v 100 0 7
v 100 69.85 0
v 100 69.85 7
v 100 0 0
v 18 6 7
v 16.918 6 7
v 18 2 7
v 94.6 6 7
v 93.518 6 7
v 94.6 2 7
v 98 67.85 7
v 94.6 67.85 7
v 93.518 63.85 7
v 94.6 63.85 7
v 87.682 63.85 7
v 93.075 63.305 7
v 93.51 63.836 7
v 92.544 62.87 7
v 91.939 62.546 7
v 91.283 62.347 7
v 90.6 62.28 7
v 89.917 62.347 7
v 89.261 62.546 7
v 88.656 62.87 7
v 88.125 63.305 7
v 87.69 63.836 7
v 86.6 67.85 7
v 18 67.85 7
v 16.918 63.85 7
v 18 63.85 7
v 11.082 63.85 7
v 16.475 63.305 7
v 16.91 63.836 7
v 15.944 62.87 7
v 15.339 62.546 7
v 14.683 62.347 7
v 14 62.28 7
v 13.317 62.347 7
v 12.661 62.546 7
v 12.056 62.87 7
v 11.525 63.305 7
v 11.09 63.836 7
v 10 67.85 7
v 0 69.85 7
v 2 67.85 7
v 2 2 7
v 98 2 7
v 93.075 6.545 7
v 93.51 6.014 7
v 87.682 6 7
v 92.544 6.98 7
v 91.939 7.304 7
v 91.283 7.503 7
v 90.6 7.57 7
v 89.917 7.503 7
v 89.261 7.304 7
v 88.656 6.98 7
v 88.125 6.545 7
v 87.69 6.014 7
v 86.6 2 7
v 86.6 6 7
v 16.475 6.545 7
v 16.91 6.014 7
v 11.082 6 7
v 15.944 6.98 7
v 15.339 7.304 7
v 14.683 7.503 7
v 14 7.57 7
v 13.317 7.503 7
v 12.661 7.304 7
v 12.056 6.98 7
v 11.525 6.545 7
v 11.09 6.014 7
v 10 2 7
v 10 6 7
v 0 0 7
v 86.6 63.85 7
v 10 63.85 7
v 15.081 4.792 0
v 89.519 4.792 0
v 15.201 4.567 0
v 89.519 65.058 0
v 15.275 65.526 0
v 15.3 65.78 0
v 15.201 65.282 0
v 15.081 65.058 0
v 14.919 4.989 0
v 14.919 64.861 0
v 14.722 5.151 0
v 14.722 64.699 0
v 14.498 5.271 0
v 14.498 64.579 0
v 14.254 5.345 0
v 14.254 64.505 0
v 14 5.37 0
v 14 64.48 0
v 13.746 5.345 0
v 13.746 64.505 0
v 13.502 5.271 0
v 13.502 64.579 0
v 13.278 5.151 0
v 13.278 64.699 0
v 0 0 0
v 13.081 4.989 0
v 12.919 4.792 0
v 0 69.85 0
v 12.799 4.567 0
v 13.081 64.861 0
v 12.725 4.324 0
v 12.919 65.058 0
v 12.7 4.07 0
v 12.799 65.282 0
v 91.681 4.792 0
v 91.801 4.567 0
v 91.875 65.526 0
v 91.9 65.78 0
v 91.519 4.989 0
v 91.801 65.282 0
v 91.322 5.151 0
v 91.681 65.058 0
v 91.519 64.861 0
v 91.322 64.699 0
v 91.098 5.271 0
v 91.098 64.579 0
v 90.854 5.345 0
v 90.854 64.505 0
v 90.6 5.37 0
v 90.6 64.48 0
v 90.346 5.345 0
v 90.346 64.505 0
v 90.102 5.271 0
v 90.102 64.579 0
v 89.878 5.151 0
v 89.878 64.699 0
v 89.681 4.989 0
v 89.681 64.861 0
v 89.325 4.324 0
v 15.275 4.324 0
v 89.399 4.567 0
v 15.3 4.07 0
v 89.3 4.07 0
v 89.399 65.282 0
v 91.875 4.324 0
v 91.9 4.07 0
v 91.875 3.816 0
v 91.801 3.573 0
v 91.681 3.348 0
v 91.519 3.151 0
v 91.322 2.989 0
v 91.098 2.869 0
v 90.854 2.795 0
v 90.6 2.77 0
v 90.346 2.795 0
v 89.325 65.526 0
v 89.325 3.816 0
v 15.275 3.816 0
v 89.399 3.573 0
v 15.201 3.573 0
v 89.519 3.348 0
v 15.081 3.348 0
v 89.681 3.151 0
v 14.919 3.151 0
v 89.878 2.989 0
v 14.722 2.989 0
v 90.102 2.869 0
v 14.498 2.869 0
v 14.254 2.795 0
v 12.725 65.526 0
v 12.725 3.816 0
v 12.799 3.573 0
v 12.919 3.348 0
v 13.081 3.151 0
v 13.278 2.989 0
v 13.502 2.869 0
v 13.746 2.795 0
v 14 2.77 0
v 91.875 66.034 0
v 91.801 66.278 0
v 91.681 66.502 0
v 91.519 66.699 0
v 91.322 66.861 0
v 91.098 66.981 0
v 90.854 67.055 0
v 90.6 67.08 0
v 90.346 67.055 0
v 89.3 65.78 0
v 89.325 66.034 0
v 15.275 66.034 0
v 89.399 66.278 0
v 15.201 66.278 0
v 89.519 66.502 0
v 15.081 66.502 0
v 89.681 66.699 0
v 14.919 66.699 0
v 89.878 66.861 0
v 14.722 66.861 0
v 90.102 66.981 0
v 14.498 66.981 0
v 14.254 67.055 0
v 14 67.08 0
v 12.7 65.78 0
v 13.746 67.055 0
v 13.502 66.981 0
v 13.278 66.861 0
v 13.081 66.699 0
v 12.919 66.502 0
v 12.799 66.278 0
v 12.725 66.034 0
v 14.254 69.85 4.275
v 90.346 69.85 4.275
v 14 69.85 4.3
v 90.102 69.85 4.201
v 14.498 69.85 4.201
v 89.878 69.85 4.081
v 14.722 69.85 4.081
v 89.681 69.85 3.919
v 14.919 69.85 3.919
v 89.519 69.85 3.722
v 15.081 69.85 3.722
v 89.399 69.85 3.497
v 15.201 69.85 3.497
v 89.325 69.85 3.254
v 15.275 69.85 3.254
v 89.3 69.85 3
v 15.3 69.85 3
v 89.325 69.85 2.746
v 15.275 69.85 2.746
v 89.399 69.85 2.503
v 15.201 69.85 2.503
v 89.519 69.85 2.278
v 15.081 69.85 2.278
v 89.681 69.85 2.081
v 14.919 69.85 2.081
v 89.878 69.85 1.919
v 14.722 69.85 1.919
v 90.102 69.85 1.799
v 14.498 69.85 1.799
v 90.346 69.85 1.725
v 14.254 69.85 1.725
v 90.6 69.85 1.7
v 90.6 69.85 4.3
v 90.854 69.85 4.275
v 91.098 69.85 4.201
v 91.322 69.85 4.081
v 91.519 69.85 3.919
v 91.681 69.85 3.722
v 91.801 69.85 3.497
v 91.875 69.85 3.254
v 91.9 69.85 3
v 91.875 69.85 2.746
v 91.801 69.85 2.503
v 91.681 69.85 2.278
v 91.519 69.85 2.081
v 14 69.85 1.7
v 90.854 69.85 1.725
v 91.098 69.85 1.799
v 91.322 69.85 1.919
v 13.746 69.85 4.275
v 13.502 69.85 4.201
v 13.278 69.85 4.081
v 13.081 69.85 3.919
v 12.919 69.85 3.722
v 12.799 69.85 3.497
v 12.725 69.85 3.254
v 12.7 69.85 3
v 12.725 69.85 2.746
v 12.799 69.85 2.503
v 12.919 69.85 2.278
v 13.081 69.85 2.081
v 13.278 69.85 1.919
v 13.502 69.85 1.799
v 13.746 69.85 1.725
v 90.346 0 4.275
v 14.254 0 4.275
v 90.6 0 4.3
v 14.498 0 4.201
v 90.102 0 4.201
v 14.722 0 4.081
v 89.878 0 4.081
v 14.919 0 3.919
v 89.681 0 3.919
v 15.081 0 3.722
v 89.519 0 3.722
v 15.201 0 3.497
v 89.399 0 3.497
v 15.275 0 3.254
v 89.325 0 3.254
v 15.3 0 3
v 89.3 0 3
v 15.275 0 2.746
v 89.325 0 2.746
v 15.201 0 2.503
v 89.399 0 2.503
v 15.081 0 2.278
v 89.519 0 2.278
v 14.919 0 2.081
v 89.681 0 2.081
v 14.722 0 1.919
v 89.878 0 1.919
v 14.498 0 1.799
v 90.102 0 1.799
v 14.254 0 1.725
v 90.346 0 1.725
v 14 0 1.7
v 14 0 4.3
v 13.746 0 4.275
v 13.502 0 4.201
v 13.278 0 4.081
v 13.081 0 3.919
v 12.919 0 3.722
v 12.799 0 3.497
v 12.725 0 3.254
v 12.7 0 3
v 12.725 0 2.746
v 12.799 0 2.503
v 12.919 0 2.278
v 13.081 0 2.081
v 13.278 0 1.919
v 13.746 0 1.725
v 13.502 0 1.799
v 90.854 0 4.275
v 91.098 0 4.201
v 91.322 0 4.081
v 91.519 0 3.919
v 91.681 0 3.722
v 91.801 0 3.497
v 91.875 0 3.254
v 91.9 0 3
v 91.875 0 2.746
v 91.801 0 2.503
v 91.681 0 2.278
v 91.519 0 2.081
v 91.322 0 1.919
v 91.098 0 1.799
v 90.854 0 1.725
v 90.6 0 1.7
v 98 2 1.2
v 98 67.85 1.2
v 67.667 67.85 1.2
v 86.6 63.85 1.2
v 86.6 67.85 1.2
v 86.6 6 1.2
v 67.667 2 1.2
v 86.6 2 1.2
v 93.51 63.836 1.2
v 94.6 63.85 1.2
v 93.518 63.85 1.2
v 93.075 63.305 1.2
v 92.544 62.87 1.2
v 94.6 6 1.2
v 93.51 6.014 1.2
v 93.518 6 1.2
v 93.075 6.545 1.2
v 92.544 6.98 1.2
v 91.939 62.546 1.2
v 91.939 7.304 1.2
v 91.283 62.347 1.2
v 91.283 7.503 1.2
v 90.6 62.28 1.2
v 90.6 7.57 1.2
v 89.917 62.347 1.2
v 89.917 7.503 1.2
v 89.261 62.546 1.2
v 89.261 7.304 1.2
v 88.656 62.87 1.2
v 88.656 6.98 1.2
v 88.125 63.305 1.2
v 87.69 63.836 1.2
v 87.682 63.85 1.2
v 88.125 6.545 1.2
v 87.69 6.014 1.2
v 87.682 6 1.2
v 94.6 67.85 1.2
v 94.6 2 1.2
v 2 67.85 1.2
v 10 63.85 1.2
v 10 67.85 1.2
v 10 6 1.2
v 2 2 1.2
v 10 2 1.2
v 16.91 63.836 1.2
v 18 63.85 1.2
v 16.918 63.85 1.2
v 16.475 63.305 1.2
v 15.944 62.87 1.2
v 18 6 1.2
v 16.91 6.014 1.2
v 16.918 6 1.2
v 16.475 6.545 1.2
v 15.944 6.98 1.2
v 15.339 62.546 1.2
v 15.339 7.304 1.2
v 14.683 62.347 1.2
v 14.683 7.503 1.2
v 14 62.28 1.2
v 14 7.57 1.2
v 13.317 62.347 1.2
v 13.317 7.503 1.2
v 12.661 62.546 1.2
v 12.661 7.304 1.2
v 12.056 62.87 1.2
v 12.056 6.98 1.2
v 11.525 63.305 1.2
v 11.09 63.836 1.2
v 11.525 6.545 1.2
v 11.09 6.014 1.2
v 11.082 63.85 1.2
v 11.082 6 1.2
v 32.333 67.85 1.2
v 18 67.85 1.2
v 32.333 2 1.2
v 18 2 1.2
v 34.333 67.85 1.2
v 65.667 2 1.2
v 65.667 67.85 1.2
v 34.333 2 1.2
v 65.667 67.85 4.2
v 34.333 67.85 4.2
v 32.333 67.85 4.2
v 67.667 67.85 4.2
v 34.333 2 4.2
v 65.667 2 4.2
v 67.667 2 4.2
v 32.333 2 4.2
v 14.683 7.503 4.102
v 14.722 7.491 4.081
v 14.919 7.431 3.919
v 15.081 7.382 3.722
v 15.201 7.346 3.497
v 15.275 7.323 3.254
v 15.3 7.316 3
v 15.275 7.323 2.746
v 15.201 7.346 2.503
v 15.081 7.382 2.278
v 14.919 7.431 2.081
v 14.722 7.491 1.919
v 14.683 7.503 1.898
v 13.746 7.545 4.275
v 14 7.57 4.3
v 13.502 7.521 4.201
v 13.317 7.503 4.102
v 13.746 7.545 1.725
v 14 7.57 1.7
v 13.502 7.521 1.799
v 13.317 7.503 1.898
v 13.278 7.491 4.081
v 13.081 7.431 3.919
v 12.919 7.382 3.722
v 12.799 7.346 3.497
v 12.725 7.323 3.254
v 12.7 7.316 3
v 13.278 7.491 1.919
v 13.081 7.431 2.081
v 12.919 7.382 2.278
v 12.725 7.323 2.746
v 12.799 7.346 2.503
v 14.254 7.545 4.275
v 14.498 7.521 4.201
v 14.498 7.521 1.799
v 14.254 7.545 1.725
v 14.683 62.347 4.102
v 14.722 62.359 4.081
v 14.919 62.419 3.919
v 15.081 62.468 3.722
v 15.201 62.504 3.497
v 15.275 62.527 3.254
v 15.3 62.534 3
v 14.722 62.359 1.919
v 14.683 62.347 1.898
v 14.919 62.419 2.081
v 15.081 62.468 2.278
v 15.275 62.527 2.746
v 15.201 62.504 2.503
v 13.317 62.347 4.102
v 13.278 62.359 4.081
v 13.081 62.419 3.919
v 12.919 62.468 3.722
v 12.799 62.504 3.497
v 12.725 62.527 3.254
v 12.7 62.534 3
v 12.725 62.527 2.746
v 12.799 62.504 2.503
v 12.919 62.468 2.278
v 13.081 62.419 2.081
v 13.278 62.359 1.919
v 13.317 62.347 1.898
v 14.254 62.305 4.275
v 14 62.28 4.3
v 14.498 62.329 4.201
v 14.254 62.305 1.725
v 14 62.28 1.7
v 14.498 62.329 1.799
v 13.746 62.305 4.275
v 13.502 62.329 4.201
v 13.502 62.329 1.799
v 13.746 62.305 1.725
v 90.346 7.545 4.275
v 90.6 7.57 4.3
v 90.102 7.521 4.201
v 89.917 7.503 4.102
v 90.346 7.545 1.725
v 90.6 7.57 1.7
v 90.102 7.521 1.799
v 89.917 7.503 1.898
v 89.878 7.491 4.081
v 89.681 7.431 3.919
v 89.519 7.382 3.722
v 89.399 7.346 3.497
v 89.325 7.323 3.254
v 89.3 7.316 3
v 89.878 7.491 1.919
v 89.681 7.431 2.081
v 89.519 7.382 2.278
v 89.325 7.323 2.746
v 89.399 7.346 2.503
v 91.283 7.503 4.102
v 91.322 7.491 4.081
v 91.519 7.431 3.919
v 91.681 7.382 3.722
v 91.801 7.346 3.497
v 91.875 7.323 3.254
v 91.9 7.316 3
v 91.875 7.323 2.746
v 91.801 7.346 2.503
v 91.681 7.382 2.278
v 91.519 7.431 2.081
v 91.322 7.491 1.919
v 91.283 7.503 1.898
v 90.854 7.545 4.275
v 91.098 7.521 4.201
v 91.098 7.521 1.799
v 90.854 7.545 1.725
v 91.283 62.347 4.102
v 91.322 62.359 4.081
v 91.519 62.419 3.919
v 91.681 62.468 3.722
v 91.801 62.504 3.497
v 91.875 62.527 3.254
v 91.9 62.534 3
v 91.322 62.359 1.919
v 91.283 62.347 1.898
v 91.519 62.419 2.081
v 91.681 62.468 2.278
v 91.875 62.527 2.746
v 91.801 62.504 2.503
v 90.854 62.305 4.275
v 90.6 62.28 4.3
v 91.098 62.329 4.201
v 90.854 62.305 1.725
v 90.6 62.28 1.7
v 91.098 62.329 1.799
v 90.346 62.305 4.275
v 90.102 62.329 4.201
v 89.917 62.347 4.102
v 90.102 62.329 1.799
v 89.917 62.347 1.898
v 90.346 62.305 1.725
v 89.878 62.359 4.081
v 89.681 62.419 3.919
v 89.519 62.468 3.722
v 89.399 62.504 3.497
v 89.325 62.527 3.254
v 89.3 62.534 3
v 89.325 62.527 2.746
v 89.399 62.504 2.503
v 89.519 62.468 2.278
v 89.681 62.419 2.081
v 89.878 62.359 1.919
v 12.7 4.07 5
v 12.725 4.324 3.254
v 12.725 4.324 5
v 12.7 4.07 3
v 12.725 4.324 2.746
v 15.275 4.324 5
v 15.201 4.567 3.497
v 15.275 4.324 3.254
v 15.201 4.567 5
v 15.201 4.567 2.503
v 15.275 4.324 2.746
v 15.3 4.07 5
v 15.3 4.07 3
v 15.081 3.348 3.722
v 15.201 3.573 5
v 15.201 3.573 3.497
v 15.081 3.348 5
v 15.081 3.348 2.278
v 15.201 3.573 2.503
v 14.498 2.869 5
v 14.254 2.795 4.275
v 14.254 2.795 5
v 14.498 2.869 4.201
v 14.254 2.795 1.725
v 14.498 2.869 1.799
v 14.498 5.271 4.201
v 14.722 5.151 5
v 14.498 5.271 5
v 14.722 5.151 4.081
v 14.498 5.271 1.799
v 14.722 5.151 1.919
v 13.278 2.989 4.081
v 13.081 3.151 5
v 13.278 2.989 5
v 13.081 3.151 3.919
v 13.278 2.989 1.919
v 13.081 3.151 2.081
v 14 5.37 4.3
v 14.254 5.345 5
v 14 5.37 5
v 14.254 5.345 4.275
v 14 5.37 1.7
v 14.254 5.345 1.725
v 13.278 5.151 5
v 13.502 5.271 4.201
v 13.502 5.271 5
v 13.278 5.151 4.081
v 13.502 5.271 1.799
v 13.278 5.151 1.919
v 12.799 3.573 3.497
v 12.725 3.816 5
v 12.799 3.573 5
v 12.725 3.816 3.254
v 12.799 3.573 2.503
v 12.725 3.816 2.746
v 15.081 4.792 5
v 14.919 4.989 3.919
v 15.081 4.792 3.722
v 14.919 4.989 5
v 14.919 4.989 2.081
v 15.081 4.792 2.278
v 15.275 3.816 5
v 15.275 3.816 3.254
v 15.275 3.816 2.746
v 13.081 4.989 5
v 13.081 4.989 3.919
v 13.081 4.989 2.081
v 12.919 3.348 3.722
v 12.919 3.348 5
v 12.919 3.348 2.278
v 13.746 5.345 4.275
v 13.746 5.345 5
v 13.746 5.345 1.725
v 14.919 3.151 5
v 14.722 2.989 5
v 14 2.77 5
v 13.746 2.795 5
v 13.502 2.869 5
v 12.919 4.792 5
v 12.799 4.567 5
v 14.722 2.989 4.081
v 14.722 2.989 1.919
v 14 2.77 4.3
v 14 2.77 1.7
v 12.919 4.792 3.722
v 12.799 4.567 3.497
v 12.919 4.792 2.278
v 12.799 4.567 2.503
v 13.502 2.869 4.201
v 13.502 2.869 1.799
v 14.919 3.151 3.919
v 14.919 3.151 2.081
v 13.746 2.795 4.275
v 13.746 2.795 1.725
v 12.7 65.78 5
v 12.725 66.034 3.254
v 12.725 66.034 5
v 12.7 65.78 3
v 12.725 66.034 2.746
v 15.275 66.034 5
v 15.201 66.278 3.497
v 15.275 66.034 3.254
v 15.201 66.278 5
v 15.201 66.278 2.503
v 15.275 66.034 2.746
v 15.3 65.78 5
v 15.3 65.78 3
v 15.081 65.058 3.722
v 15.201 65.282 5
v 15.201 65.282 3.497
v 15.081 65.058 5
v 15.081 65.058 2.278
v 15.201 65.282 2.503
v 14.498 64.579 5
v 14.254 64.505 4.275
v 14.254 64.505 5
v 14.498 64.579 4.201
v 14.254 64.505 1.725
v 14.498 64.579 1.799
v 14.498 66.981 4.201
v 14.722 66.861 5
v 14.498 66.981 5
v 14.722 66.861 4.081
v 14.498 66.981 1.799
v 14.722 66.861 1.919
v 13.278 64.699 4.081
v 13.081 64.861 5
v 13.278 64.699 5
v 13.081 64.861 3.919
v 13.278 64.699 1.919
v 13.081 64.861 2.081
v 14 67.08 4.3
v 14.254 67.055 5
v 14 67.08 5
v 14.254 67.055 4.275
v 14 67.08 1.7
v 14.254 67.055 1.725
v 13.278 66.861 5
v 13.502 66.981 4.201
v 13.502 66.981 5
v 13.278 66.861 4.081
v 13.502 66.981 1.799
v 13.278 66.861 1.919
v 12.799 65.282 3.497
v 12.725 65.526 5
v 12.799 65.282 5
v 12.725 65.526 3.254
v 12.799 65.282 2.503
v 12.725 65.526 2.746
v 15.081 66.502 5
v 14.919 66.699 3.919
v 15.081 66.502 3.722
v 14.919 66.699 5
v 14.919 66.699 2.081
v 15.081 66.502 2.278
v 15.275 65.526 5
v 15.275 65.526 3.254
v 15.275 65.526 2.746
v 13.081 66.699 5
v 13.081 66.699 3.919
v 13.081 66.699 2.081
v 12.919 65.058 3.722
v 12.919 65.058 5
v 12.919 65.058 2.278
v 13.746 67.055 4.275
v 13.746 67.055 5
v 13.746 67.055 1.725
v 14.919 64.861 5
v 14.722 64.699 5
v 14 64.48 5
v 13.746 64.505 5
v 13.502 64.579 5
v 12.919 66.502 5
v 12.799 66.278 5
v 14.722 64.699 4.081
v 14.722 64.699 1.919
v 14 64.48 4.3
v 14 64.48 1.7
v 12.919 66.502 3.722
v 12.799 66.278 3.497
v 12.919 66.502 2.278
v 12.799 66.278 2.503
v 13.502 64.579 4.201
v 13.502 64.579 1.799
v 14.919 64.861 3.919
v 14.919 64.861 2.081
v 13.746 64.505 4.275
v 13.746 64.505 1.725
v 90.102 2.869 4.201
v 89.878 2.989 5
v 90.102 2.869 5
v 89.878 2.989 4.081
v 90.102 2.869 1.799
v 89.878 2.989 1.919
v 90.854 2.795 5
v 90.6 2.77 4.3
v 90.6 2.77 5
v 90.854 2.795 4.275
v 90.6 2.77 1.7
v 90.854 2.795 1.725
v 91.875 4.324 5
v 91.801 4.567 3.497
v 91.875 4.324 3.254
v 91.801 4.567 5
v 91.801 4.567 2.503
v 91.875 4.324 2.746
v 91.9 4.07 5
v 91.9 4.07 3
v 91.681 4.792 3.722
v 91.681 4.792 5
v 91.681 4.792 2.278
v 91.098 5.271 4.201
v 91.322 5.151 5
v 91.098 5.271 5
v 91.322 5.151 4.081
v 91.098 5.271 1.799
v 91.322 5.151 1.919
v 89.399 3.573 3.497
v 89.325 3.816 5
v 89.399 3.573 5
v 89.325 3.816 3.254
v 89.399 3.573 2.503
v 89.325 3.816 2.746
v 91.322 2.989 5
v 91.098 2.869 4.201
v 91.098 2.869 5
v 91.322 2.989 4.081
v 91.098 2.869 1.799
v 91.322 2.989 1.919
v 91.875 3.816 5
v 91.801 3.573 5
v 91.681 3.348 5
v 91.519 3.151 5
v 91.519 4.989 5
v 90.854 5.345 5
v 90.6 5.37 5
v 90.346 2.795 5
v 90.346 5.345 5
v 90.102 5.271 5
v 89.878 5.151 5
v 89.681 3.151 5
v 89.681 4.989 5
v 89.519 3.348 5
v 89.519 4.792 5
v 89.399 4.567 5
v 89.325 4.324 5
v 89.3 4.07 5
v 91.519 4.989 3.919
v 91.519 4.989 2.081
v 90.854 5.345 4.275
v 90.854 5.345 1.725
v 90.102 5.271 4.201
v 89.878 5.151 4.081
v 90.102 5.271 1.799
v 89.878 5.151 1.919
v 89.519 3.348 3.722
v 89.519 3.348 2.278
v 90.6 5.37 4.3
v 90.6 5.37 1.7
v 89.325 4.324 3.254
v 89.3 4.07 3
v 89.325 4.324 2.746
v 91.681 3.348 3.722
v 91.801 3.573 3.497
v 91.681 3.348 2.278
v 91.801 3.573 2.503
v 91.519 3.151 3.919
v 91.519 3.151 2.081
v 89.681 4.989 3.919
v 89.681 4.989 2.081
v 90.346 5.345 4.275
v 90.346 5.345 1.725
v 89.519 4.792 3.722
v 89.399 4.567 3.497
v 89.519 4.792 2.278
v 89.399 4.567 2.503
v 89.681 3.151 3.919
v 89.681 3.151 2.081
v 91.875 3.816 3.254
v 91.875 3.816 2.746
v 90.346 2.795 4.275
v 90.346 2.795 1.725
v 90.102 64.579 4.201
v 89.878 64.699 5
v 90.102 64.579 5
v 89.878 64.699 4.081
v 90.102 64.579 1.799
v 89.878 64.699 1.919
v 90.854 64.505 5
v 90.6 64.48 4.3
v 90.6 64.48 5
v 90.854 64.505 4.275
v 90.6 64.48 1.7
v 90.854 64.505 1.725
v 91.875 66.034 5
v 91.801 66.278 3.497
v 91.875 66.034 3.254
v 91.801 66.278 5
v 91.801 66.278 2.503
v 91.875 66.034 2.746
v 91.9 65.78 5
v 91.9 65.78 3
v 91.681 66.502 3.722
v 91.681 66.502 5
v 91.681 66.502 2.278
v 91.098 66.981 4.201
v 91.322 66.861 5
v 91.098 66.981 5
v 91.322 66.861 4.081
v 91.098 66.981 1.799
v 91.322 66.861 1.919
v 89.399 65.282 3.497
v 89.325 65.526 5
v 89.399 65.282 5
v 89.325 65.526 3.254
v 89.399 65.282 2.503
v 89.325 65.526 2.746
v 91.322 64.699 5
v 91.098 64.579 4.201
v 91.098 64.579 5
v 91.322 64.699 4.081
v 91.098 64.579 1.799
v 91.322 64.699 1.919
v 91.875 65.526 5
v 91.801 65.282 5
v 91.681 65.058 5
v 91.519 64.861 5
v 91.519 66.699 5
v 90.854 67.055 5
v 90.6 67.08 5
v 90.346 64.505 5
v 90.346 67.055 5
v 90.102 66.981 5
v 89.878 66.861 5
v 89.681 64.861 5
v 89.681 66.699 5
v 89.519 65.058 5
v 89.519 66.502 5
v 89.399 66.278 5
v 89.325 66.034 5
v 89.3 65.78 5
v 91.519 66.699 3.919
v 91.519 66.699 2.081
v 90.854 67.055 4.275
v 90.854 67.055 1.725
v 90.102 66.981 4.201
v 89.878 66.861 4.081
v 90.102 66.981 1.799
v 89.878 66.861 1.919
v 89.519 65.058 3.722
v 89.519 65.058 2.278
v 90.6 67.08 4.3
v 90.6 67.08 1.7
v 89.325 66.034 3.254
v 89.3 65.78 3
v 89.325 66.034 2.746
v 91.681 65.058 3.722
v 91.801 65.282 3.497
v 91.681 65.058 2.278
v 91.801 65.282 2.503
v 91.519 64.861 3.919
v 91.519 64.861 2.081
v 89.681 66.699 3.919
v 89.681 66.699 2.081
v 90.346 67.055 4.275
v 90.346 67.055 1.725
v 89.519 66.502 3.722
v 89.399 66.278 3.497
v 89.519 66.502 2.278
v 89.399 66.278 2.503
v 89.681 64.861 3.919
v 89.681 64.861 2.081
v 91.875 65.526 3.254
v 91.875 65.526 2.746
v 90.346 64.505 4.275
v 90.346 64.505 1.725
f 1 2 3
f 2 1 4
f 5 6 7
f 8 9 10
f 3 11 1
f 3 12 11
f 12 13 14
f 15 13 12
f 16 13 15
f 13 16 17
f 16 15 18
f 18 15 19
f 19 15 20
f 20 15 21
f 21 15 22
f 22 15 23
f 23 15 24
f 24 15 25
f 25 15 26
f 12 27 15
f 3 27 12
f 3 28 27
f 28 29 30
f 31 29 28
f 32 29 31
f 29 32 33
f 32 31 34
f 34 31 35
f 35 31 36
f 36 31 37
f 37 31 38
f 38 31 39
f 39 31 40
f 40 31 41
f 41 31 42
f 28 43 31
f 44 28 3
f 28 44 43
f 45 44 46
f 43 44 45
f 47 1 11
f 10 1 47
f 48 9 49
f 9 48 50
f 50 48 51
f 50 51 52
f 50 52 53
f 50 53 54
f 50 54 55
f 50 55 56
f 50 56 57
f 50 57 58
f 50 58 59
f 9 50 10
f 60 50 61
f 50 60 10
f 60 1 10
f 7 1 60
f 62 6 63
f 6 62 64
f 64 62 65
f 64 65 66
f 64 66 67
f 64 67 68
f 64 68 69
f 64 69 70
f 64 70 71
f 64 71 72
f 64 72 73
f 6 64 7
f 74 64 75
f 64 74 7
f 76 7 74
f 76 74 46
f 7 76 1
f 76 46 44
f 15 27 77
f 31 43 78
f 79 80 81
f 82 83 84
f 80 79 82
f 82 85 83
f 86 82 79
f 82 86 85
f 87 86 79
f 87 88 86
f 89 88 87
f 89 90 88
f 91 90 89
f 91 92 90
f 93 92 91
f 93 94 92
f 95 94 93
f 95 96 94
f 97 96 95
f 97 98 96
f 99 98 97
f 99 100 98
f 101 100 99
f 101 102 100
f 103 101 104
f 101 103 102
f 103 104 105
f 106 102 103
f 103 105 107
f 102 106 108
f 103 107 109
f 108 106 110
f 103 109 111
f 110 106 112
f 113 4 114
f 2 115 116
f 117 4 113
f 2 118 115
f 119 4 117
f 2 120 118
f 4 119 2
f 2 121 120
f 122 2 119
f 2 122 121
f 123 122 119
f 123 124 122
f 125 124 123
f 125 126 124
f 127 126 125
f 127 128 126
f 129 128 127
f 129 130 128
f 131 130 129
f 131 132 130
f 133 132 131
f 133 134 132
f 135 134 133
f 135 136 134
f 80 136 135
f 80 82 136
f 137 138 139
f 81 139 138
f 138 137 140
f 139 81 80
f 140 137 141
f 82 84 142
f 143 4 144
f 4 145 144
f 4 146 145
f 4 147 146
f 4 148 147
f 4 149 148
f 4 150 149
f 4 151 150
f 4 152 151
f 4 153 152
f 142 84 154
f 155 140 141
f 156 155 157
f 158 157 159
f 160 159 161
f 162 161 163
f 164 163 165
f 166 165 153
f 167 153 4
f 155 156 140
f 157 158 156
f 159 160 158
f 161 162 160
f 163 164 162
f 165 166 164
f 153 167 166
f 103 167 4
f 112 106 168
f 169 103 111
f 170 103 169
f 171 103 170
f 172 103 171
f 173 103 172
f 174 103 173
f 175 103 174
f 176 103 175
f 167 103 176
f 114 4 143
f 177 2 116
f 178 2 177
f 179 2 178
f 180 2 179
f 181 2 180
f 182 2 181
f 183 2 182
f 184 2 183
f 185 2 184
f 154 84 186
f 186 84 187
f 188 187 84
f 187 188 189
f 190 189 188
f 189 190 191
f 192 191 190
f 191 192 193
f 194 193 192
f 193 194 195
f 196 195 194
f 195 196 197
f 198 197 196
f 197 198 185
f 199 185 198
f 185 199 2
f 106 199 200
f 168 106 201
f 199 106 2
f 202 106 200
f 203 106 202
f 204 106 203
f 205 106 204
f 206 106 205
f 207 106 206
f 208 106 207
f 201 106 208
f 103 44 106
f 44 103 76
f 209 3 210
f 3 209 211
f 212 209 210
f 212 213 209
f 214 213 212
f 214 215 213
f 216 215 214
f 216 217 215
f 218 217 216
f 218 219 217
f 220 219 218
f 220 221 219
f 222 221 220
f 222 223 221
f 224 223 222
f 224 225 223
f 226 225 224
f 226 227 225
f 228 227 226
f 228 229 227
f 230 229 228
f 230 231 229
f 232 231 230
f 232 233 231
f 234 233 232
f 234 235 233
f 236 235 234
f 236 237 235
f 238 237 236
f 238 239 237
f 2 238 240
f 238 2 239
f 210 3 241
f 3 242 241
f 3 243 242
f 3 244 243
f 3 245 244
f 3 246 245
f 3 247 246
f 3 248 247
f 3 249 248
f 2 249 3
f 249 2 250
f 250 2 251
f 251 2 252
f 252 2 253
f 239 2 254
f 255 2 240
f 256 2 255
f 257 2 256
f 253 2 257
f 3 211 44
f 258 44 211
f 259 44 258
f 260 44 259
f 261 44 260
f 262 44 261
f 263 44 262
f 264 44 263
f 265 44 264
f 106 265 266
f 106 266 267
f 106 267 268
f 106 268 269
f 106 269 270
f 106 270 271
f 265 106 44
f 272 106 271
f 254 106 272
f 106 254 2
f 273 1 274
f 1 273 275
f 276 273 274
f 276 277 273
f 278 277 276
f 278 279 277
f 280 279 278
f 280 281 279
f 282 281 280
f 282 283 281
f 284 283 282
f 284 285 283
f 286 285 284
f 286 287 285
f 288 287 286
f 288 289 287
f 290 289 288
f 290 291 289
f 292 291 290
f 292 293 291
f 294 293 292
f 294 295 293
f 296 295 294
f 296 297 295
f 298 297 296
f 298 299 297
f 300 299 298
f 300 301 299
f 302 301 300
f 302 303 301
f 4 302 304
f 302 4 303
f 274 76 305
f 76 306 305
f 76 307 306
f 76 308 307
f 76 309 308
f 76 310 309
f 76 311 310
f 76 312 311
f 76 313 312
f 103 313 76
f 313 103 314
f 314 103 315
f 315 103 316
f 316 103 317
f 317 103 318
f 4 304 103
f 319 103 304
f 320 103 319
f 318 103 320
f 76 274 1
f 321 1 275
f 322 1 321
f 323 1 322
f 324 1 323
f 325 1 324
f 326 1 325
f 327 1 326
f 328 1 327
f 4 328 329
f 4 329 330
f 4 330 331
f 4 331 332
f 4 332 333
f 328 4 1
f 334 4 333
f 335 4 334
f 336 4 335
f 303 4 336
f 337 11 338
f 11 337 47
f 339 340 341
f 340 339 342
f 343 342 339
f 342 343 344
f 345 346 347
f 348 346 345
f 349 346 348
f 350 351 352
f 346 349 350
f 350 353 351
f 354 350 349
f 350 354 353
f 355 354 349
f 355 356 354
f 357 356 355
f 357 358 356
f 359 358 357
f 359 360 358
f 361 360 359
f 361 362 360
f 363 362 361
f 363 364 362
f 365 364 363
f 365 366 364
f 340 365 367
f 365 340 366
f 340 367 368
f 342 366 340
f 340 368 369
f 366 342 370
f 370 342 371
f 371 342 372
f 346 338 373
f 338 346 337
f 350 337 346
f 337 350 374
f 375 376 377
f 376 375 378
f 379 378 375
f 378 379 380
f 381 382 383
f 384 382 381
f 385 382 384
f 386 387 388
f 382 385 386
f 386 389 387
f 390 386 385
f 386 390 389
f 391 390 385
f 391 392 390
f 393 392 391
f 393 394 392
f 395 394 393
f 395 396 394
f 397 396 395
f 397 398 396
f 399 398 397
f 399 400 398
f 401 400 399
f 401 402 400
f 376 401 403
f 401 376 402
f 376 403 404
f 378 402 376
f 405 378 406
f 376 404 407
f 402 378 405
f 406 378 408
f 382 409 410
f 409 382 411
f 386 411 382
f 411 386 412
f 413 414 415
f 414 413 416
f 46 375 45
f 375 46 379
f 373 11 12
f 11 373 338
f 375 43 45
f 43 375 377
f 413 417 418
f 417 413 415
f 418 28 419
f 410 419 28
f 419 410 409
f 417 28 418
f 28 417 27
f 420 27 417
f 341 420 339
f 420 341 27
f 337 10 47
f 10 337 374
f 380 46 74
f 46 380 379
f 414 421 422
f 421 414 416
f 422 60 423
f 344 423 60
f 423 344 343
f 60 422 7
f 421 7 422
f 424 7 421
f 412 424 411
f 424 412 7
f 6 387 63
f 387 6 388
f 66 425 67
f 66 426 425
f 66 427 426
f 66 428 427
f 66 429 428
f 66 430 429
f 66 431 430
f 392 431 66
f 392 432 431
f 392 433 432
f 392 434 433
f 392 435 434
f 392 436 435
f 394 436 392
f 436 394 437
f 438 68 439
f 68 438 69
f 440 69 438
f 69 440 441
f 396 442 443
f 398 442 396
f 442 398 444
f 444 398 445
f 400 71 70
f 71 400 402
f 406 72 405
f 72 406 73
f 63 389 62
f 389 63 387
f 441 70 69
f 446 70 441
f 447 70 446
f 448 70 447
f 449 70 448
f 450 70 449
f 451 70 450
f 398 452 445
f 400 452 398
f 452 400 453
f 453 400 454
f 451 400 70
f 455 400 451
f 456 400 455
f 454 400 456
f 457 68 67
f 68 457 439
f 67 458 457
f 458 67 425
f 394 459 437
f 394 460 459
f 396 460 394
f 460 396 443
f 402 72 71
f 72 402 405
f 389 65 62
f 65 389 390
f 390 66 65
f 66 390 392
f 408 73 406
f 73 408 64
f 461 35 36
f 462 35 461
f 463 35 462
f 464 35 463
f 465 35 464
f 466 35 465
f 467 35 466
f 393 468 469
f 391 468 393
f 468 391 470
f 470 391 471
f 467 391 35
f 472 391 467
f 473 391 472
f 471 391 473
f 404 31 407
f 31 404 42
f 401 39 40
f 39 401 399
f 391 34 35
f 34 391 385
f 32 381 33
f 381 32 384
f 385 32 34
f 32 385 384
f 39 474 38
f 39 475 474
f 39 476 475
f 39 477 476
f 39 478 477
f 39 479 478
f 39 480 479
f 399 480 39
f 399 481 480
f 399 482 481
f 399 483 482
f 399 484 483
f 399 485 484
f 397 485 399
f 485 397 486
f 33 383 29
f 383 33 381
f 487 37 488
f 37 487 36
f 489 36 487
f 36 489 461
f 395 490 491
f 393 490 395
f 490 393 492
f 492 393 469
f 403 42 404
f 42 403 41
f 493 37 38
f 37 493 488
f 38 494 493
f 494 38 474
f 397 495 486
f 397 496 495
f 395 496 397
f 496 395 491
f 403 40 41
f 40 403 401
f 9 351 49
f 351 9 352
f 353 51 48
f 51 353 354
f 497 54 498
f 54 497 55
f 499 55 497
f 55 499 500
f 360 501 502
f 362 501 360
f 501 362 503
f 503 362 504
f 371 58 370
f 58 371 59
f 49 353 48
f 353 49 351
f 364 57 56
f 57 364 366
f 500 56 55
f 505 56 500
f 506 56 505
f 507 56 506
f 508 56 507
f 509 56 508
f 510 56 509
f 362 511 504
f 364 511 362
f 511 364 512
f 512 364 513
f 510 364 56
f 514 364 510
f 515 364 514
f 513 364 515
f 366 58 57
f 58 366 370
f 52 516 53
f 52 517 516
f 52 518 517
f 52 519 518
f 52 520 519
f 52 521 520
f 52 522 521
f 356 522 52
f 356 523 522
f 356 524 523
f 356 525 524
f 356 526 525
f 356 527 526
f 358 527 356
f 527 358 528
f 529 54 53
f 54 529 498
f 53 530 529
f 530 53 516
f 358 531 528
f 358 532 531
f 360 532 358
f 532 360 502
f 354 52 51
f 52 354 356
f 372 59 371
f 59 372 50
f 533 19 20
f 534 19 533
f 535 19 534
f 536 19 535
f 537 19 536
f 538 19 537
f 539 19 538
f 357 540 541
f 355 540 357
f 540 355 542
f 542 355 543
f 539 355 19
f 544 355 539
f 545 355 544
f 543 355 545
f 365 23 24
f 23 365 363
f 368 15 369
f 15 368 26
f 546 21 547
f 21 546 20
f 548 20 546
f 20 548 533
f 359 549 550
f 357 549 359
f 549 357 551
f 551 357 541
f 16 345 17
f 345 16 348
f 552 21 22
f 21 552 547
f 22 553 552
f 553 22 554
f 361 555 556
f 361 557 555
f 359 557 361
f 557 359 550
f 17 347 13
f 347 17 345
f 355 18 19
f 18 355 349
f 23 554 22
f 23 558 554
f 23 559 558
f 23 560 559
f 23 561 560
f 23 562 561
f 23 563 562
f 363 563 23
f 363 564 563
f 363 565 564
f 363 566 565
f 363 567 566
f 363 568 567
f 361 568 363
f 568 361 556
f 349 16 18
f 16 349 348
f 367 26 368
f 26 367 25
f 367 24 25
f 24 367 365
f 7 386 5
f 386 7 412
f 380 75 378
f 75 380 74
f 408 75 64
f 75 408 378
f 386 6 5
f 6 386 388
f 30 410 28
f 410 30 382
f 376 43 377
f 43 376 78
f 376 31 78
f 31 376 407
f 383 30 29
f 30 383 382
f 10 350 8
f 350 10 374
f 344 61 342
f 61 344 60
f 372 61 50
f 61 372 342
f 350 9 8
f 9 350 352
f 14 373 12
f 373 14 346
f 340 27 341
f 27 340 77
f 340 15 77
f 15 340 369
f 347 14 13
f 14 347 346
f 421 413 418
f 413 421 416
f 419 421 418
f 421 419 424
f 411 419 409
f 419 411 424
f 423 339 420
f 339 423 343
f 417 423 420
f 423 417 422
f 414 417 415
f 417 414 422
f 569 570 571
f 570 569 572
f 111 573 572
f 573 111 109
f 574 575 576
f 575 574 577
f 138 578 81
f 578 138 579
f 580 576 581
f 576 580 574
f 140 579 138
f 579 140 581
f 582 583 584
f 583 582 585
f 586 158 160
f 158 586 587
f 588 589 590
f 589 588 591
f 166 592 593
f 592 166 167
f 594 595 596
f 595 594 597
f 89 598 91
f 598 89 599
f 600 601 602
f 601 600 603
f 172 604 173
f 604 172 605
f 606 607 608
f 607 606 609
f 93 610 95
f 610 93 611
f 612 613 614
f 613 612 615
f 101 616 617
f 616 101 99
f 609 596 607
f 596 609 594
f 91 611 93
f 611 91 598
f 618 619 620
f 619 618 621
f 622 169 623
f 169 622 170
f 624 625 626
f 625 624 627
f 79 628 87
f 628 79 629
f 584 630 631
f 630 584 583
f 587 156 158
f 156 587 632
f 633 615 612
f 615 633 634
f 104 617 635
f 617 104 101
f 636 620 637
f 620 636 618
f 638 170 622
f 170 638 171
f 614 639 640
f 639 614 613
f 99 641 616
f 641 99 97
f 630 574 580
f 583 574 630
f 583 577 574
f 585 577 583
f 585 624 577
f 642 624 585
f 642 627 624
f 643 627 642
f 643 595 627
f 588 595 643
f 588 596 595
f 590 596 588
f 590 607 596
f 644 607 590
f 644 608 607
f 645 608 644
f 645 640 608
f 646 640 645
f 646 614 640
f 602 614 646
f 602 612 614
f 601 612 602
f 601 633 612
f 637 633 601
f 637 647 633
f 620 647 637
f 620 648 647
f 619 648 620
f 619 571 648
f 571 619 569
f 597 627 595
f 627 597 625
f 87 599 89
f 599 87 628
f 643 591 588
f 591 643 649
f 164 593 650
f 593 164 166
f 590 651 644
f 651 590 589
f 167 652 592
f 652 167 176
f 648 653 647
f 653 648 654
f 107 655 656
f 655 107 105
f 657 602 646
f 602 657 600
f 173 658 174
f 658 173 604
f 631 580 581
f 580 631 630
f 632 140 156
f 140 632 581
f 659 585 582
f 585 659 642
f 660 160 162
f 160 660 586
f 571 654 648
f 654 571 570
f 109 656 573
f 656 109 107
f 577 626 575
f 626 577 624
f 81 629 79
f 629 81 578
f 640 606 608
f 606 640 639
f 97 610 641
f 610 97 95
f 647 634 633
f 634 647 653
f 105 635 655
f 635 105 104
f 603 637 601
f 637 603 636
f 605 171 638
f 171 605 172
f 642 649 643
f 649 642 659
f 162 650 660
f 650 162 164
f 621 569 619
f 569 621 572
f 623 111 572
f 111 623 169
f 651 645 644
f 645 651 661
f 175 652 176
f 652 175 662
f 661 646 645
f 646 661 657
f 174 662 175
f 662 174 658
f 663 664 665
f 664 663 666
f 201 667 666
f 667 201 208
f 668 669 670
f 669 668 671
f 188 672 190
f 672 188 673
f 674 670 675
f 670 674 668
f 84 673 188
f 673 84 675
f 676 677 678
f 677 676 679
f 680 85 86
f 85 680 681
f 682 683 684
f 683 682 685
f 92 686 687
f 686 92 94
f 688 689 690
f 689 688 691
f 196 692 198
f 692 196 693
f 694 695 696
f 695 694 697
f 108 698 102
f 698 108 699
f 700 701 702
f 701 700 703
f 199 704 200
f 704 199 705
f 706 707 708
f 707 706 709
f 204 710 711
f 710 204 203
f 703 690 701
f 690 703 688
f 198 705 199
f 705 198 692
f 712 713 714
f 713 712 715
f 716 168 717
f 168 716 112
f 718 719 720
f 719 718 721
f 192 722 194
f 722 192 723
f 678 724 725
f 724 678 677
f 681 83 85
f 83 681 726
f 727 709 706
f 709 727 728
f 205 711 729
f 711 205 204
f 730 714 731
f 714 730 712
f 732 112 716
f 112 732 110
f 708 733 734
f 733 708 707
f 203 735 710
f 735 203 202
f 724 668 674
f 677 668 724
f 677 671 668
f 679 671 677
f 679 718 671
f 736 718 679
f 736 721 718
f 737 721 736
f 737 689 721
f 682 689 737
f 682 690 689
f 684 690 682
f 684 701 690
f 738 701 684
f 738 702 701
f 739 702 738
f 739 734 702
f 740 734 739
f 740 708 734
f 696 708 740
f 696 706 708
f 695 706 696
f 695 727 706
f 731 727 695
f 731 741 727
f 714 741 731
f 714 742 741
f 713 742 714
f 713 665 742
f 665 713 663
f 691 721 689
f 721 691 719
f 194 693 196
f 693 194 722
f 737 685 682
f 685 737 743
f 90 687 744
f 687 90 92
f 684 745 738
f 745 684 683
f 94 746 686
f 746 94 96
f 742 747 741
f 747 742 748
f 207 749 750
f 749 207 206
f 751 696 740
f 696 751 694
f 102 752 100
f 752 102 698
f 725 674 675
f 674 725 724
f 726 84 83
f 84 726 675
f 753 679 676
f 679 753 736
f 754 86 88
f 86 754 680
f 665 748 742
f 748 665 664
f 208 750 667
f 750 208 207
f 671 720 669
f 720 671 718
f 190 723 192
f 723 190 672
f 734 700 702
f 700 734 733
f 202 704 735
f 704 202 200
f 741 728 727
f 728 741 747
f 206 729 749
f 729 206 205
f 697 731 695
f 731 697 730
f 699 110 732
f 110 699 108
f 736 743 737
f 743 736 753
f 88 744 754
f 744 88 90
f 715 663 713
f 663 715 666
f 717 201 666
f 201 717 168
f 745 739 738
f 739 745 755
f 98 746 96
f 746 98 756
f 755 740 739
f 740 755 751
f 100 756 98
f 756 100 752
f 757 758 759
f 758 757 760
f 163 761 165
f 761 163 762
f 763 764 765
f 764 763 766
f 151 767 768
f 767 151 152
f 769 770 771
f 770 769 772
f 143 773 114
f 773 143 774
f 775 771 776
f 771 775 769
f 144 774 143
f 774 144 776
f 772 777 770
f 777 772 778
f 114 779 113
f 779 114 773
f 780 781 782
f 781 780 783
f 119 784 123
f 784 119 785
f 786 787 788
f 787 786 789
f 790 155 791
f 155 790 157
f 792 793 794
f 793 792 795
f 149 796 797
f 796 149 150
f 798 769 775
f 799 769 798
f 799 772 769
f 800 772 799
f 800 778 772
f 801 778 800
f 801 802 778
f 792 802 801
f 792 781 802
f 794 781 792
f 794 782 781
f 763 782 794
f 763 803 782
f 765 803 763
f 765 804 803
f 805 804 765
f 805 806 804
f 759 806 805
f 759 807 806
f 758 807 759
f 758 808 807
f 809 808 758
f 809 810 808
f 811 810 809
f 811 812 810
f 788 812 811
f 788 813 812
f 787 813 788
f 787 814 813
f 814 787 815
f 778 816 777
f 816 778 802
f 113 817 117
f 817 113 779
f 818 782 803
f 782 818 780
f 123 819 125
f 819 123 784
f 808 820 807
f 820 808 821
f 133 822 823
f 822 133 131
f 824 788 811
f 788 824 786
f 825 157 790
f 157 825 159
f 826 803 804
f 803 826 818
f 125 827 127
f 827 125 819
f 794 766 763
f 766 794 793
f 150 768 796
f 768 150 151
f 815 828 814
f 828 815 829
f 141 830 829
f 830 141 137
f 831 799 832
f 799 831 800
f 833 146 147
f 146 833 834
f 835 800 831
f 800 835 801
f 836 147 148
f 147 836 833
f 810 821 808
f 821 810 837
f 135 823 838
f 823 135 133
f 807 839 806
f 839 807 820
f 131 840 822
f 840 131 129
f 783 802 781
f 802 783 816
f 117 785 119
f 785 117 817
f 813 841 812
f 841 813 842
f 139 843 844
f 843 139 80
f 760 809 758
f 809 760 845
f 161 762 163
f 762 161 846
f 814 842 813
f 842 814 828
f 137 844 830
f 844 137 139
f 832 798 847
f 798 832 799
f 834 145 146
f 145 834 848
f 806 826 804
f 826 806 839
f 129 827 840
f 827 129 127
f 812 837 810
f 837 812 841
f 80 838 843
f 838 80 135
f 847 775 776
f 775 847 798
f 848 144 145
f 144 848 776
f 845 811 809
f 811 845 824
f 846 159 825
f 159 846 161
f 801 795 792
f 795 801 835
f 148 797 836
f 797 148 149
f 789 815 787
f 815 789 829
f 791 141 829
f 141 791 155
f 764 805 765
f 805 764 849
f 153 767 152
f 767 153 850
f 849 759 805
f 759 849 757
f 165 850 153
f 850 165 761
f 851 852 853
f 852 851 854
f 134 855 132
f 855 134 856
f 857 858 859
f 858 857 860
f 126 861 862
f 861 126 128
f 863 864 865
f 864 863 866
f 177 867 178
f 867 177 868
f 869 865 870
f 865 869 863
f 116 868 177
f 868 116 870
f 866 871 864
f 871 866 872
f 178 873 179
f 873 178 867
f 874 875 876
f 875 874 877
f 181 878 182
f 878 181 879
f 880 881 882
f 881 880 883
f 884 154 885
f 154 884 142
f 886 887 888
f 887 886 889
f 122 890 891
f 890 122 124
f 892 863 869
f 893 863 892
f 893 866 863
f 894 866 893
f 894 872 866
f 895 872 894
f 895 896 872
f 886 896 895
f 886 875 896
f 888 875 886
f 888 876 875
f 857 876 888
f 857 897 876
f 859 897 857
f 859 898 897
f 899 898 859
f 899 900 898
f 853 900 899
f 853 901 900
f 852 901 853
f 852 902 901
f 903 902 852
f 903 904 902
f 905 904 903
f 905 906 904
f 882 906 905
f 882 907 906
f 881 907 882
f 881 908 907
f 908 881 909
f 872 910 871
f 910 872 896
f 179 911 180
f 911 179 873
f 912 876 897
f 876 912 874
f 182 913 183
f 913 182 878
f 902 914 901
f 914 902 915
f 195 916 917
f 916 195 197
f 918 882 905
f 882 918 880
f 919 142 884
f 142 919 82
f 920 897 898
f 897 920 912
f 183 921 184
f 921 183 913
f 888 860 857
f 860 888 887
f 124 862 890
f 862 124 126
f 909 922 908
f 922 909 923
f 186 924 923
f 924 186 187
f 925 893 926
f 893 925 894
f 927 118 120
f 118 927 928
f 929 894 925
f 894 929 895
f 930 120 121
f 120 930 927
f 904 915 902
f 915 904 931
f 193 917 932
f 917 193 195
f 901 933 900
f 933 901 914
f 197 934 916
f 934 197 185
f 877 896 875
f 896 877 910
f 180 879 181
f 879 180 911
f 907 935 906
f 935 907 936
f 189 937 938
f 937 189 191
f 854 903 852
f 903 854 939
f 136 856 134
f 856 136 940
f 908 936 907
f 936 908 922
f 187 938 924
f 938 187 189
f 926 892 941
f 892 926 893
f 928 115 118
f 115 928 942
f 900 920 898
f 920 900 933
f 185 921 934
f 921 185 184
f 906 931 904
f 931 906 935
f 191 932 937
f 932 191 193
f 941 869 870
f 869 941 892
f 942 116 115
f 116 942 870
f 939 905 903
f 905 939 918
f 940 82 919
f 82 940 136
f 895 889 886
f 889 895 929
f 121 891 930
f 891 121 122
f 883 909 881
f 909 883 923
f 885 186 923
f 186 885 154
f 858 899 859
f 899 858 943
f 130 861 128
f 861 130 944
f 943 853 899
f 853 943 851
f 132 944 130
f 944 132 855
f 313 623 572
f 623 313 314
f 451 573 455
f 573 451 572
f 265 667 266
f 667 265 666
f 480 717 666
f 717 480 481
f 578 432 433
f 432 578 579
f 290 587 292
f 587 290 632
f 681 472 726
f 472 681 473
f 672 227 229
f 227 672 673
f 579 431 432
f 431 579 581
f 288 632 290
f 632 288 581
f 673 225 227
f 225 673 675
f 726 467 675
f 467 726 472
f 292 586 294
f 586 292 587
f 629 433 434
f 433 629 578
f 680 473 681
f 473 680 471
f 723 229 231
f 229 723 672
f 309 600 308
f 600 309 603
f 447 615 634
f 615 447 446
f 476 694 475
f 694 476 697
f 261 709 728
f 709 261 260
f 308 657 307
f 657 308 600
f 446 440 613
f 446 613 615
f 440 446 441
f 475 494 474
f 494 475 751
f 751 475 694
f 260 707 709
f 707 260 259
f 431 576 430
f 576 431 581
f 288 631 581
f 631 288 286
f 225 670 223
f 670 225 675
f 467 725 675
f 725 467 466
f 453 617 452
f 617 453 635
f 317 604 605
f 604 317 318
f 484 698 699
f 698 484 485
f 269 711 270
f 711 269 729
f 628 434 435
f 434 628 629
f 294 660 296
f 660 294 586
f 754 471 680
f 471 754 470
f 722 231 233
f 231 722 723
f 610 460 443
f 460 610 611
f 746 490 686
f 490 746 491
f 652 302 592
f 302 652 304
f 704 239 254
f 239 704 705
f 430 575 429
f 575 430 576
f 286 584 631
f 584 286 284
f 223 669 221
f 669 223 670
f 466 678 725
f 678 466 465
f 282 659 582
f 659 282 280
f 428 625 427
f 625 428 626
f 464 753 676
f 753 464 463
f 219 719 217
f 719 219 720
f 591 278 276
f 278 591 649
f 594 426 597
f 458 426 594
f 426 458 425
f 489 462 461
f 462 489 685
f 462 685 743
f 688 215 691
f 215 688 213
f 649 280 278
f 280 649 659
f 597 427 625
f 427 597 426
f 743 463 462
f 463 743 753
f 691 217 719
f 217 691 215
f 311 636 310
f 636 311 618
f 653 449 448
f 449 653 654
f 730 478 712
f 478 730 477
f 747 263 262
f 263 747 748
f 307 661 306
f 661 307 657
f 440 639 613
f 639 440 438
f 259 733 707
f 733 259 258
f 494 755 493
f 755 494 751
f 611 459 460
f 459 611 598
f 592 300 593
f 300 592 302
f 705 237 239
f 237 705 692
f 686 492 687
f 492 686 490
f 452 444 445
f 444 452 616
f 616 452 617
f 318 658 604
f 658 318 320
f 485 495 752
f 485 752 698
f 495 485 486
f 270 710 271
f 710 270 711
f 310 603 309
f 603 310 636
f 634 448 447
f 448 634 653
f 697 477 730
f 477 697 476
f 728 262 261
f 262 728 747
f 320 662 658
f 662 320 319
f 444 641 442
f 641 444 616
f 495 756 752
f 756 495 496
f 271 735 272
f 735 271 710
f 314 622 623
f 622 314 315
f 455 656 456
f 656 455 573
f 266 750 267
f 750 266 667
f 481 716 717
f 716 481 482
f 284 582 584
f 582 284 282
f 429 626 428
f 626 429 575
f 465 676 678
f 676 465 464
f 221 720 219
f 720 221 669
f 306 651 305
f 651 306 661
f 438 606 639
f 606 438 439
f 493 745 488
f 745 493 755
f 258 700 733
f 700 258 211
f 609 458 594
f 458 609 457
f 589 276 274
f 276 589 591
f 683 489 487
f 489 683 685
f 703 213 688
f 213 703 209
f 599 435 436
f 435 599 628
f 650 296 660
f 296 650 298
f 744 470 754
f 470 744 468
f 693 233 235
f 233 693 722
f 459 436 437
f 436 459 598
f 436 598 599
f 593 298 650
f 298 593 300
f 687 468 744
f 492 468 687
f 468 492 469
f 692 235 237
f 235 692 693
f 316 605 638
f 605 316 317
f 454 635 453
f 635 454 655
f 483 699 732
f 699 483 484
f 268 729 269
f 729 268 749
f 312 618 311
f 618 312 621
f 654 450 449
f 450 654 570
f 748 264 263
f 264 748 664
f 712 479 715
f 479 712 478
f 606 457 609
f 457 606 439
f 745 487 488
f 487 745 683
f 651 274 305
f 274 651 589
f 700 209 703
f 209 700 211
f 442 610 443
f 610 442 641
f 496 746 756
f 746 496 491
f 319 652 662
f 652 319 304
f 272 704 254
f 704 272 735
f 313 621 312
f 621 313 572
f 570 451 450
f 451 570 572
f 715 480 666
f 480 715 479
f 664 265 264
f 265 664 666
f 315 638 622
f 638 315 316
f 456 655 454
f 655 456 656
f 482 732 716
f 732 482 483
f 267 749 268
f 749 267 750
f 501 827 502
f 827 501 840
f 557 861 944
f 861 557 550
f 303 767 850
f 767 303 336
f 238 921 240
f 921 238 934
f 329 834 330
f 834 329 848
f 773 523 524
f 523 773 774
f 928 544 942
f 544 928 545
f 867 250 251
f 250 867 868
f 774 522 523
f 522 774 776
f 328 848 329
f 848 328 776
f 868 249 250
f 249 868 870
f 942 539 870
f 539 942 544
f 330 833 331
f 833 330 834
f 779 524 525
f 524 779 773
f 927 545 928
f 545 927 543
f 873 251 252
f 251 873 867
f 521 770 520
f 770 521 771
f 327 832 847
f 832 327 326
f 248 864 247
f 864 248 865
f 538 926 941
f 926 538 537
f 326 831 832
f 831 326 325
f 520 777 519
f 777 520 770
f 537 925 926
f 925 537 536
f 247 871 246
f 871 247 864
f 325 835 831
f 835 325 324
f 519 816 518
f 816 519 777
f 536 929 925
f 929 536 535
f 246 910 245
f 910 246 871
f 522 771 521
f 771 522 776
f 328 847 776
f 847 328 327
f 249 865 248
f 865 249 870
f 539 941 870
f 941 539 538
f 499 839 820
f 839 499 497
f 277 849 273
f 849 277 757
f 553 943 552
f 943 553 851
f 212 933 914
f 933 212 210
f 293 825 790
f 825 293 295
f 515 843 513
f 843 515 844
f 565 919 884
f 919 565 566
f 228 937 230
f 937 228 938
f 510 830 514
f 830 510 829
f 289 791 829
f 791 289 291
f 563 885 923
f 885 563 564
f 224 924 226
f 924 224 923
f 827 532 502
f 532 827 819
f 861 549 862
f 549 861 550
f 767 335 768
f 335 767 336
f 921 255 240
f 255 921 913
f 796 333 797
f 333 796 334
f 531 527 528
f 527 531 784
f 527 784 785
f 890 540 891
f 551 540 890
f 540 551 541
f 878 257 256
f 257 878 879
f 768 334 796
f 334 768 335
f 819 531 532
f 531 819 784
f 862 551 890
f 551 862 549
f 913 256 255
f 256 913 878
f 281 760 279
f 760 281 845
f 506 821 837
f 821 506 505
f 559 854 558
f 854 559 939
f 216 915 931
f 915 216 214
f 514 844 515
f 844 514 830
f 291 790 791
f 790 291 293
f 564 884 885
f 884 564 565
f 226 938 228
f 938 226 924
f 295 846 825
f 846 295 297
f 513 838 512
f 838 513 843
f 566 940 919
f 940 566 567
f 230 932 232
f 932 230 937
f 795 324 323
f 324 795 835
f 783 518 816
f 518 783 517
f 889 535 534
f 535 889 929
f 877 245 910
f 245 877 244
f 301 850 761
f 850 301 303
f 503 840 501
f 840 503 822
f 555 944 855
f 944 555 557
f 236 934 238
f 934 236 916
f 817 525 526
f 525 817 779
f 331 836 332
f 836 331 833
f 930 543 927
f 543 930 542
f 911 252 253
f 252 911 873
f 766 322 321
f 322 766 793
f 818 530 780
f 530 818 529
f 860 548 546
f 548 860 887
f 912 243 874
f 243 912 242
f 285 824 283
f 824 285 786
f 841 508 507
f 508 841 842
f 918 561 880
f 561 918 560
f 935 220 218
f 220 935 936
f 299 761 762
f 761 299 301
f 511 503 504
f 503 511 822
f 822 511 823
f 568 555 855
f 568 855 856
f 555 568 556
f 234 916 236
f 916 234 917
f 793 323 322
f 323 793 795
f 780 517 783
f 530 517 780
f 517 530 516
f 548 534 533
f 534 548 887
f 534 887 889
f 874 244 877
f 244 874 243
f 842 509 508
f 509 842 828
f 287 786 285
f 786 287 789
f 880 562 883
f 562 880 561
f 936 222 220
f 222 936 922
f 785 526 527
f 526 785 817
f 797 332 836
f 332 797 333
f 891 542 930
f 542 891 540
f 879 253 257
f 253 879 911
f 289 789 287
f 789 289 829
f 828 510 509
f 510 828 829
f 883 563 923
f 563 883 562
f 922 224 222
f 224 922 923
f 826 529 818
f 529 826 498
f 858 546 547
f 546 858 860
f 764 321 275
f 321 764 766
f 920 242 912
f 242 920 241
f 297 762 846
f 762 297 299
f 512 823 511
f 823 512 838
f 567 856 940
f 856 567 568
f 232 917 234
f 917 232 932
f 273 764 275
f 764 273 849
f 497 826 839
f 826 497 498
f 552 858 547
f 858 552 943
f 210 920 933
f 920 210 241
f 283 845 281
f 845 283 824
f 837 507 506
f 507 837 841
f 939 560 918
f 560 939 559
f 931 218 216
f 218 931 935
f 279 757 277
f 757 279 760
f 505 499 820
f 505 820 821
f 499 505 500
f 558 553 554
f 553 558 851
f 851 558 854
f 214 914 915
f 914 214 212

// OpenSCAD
// Dummy 2.5" SSD (7 mm) to fill the empty slot of the REDUX case.
// Envelope and holes like a standard SATA SSD (SFF-8201):
// 100 x 69.85 x 7 mm, M3 holes underneath and on the sides at 14 and 90.6 mm from the connector end.
L = 100.0; W = 69.85; H = 7.0;
wall = 2.0; floor_t = 1.2;
hole = 2.6;          // pilot hole for an M3 self-tapping screw into plastic
X = [14.0, 90.6];    // hole distance from the connector end
bottom_inset = 4.07; // bottom holes: distance from the sides
side_z = 3.0;        // side holes: height from the bottom
$fn = 32;
difference() {
    union() {
        difference() {                                   // hollow frame with floor
            cube([L, W, H]);
            translate([wall, wall, floor_t]) cube([L - 2*wall, W - 2*wall, H]);
        }
        for (x = X, y = [bottom_inset, W - bottom_inset])  // bosses under the bottom holes
            translate([x, y, 0]) cylinder(d=7, h=H);
        for (x = X, y = [0, W - 6])                        // reinforcement behind the side holes
            translate([x - 4, y, 0]) cube([8, 6, H]);
        for (x = [L/3, 2*L/3]) translate([x - 1, 0, 0]) cube([2, W, H * 0.6]);   // ribs
    }
    for (x = X, y = [bottom_inset, W - bottom_inset]) translate([x, y, -1]) cylinder(d=hole, h=6);
    for (x = X) translate([x, -1, side_z]) rotate([-90, 0, 0]) cylinder(d=hole, h=W + 2);
}
